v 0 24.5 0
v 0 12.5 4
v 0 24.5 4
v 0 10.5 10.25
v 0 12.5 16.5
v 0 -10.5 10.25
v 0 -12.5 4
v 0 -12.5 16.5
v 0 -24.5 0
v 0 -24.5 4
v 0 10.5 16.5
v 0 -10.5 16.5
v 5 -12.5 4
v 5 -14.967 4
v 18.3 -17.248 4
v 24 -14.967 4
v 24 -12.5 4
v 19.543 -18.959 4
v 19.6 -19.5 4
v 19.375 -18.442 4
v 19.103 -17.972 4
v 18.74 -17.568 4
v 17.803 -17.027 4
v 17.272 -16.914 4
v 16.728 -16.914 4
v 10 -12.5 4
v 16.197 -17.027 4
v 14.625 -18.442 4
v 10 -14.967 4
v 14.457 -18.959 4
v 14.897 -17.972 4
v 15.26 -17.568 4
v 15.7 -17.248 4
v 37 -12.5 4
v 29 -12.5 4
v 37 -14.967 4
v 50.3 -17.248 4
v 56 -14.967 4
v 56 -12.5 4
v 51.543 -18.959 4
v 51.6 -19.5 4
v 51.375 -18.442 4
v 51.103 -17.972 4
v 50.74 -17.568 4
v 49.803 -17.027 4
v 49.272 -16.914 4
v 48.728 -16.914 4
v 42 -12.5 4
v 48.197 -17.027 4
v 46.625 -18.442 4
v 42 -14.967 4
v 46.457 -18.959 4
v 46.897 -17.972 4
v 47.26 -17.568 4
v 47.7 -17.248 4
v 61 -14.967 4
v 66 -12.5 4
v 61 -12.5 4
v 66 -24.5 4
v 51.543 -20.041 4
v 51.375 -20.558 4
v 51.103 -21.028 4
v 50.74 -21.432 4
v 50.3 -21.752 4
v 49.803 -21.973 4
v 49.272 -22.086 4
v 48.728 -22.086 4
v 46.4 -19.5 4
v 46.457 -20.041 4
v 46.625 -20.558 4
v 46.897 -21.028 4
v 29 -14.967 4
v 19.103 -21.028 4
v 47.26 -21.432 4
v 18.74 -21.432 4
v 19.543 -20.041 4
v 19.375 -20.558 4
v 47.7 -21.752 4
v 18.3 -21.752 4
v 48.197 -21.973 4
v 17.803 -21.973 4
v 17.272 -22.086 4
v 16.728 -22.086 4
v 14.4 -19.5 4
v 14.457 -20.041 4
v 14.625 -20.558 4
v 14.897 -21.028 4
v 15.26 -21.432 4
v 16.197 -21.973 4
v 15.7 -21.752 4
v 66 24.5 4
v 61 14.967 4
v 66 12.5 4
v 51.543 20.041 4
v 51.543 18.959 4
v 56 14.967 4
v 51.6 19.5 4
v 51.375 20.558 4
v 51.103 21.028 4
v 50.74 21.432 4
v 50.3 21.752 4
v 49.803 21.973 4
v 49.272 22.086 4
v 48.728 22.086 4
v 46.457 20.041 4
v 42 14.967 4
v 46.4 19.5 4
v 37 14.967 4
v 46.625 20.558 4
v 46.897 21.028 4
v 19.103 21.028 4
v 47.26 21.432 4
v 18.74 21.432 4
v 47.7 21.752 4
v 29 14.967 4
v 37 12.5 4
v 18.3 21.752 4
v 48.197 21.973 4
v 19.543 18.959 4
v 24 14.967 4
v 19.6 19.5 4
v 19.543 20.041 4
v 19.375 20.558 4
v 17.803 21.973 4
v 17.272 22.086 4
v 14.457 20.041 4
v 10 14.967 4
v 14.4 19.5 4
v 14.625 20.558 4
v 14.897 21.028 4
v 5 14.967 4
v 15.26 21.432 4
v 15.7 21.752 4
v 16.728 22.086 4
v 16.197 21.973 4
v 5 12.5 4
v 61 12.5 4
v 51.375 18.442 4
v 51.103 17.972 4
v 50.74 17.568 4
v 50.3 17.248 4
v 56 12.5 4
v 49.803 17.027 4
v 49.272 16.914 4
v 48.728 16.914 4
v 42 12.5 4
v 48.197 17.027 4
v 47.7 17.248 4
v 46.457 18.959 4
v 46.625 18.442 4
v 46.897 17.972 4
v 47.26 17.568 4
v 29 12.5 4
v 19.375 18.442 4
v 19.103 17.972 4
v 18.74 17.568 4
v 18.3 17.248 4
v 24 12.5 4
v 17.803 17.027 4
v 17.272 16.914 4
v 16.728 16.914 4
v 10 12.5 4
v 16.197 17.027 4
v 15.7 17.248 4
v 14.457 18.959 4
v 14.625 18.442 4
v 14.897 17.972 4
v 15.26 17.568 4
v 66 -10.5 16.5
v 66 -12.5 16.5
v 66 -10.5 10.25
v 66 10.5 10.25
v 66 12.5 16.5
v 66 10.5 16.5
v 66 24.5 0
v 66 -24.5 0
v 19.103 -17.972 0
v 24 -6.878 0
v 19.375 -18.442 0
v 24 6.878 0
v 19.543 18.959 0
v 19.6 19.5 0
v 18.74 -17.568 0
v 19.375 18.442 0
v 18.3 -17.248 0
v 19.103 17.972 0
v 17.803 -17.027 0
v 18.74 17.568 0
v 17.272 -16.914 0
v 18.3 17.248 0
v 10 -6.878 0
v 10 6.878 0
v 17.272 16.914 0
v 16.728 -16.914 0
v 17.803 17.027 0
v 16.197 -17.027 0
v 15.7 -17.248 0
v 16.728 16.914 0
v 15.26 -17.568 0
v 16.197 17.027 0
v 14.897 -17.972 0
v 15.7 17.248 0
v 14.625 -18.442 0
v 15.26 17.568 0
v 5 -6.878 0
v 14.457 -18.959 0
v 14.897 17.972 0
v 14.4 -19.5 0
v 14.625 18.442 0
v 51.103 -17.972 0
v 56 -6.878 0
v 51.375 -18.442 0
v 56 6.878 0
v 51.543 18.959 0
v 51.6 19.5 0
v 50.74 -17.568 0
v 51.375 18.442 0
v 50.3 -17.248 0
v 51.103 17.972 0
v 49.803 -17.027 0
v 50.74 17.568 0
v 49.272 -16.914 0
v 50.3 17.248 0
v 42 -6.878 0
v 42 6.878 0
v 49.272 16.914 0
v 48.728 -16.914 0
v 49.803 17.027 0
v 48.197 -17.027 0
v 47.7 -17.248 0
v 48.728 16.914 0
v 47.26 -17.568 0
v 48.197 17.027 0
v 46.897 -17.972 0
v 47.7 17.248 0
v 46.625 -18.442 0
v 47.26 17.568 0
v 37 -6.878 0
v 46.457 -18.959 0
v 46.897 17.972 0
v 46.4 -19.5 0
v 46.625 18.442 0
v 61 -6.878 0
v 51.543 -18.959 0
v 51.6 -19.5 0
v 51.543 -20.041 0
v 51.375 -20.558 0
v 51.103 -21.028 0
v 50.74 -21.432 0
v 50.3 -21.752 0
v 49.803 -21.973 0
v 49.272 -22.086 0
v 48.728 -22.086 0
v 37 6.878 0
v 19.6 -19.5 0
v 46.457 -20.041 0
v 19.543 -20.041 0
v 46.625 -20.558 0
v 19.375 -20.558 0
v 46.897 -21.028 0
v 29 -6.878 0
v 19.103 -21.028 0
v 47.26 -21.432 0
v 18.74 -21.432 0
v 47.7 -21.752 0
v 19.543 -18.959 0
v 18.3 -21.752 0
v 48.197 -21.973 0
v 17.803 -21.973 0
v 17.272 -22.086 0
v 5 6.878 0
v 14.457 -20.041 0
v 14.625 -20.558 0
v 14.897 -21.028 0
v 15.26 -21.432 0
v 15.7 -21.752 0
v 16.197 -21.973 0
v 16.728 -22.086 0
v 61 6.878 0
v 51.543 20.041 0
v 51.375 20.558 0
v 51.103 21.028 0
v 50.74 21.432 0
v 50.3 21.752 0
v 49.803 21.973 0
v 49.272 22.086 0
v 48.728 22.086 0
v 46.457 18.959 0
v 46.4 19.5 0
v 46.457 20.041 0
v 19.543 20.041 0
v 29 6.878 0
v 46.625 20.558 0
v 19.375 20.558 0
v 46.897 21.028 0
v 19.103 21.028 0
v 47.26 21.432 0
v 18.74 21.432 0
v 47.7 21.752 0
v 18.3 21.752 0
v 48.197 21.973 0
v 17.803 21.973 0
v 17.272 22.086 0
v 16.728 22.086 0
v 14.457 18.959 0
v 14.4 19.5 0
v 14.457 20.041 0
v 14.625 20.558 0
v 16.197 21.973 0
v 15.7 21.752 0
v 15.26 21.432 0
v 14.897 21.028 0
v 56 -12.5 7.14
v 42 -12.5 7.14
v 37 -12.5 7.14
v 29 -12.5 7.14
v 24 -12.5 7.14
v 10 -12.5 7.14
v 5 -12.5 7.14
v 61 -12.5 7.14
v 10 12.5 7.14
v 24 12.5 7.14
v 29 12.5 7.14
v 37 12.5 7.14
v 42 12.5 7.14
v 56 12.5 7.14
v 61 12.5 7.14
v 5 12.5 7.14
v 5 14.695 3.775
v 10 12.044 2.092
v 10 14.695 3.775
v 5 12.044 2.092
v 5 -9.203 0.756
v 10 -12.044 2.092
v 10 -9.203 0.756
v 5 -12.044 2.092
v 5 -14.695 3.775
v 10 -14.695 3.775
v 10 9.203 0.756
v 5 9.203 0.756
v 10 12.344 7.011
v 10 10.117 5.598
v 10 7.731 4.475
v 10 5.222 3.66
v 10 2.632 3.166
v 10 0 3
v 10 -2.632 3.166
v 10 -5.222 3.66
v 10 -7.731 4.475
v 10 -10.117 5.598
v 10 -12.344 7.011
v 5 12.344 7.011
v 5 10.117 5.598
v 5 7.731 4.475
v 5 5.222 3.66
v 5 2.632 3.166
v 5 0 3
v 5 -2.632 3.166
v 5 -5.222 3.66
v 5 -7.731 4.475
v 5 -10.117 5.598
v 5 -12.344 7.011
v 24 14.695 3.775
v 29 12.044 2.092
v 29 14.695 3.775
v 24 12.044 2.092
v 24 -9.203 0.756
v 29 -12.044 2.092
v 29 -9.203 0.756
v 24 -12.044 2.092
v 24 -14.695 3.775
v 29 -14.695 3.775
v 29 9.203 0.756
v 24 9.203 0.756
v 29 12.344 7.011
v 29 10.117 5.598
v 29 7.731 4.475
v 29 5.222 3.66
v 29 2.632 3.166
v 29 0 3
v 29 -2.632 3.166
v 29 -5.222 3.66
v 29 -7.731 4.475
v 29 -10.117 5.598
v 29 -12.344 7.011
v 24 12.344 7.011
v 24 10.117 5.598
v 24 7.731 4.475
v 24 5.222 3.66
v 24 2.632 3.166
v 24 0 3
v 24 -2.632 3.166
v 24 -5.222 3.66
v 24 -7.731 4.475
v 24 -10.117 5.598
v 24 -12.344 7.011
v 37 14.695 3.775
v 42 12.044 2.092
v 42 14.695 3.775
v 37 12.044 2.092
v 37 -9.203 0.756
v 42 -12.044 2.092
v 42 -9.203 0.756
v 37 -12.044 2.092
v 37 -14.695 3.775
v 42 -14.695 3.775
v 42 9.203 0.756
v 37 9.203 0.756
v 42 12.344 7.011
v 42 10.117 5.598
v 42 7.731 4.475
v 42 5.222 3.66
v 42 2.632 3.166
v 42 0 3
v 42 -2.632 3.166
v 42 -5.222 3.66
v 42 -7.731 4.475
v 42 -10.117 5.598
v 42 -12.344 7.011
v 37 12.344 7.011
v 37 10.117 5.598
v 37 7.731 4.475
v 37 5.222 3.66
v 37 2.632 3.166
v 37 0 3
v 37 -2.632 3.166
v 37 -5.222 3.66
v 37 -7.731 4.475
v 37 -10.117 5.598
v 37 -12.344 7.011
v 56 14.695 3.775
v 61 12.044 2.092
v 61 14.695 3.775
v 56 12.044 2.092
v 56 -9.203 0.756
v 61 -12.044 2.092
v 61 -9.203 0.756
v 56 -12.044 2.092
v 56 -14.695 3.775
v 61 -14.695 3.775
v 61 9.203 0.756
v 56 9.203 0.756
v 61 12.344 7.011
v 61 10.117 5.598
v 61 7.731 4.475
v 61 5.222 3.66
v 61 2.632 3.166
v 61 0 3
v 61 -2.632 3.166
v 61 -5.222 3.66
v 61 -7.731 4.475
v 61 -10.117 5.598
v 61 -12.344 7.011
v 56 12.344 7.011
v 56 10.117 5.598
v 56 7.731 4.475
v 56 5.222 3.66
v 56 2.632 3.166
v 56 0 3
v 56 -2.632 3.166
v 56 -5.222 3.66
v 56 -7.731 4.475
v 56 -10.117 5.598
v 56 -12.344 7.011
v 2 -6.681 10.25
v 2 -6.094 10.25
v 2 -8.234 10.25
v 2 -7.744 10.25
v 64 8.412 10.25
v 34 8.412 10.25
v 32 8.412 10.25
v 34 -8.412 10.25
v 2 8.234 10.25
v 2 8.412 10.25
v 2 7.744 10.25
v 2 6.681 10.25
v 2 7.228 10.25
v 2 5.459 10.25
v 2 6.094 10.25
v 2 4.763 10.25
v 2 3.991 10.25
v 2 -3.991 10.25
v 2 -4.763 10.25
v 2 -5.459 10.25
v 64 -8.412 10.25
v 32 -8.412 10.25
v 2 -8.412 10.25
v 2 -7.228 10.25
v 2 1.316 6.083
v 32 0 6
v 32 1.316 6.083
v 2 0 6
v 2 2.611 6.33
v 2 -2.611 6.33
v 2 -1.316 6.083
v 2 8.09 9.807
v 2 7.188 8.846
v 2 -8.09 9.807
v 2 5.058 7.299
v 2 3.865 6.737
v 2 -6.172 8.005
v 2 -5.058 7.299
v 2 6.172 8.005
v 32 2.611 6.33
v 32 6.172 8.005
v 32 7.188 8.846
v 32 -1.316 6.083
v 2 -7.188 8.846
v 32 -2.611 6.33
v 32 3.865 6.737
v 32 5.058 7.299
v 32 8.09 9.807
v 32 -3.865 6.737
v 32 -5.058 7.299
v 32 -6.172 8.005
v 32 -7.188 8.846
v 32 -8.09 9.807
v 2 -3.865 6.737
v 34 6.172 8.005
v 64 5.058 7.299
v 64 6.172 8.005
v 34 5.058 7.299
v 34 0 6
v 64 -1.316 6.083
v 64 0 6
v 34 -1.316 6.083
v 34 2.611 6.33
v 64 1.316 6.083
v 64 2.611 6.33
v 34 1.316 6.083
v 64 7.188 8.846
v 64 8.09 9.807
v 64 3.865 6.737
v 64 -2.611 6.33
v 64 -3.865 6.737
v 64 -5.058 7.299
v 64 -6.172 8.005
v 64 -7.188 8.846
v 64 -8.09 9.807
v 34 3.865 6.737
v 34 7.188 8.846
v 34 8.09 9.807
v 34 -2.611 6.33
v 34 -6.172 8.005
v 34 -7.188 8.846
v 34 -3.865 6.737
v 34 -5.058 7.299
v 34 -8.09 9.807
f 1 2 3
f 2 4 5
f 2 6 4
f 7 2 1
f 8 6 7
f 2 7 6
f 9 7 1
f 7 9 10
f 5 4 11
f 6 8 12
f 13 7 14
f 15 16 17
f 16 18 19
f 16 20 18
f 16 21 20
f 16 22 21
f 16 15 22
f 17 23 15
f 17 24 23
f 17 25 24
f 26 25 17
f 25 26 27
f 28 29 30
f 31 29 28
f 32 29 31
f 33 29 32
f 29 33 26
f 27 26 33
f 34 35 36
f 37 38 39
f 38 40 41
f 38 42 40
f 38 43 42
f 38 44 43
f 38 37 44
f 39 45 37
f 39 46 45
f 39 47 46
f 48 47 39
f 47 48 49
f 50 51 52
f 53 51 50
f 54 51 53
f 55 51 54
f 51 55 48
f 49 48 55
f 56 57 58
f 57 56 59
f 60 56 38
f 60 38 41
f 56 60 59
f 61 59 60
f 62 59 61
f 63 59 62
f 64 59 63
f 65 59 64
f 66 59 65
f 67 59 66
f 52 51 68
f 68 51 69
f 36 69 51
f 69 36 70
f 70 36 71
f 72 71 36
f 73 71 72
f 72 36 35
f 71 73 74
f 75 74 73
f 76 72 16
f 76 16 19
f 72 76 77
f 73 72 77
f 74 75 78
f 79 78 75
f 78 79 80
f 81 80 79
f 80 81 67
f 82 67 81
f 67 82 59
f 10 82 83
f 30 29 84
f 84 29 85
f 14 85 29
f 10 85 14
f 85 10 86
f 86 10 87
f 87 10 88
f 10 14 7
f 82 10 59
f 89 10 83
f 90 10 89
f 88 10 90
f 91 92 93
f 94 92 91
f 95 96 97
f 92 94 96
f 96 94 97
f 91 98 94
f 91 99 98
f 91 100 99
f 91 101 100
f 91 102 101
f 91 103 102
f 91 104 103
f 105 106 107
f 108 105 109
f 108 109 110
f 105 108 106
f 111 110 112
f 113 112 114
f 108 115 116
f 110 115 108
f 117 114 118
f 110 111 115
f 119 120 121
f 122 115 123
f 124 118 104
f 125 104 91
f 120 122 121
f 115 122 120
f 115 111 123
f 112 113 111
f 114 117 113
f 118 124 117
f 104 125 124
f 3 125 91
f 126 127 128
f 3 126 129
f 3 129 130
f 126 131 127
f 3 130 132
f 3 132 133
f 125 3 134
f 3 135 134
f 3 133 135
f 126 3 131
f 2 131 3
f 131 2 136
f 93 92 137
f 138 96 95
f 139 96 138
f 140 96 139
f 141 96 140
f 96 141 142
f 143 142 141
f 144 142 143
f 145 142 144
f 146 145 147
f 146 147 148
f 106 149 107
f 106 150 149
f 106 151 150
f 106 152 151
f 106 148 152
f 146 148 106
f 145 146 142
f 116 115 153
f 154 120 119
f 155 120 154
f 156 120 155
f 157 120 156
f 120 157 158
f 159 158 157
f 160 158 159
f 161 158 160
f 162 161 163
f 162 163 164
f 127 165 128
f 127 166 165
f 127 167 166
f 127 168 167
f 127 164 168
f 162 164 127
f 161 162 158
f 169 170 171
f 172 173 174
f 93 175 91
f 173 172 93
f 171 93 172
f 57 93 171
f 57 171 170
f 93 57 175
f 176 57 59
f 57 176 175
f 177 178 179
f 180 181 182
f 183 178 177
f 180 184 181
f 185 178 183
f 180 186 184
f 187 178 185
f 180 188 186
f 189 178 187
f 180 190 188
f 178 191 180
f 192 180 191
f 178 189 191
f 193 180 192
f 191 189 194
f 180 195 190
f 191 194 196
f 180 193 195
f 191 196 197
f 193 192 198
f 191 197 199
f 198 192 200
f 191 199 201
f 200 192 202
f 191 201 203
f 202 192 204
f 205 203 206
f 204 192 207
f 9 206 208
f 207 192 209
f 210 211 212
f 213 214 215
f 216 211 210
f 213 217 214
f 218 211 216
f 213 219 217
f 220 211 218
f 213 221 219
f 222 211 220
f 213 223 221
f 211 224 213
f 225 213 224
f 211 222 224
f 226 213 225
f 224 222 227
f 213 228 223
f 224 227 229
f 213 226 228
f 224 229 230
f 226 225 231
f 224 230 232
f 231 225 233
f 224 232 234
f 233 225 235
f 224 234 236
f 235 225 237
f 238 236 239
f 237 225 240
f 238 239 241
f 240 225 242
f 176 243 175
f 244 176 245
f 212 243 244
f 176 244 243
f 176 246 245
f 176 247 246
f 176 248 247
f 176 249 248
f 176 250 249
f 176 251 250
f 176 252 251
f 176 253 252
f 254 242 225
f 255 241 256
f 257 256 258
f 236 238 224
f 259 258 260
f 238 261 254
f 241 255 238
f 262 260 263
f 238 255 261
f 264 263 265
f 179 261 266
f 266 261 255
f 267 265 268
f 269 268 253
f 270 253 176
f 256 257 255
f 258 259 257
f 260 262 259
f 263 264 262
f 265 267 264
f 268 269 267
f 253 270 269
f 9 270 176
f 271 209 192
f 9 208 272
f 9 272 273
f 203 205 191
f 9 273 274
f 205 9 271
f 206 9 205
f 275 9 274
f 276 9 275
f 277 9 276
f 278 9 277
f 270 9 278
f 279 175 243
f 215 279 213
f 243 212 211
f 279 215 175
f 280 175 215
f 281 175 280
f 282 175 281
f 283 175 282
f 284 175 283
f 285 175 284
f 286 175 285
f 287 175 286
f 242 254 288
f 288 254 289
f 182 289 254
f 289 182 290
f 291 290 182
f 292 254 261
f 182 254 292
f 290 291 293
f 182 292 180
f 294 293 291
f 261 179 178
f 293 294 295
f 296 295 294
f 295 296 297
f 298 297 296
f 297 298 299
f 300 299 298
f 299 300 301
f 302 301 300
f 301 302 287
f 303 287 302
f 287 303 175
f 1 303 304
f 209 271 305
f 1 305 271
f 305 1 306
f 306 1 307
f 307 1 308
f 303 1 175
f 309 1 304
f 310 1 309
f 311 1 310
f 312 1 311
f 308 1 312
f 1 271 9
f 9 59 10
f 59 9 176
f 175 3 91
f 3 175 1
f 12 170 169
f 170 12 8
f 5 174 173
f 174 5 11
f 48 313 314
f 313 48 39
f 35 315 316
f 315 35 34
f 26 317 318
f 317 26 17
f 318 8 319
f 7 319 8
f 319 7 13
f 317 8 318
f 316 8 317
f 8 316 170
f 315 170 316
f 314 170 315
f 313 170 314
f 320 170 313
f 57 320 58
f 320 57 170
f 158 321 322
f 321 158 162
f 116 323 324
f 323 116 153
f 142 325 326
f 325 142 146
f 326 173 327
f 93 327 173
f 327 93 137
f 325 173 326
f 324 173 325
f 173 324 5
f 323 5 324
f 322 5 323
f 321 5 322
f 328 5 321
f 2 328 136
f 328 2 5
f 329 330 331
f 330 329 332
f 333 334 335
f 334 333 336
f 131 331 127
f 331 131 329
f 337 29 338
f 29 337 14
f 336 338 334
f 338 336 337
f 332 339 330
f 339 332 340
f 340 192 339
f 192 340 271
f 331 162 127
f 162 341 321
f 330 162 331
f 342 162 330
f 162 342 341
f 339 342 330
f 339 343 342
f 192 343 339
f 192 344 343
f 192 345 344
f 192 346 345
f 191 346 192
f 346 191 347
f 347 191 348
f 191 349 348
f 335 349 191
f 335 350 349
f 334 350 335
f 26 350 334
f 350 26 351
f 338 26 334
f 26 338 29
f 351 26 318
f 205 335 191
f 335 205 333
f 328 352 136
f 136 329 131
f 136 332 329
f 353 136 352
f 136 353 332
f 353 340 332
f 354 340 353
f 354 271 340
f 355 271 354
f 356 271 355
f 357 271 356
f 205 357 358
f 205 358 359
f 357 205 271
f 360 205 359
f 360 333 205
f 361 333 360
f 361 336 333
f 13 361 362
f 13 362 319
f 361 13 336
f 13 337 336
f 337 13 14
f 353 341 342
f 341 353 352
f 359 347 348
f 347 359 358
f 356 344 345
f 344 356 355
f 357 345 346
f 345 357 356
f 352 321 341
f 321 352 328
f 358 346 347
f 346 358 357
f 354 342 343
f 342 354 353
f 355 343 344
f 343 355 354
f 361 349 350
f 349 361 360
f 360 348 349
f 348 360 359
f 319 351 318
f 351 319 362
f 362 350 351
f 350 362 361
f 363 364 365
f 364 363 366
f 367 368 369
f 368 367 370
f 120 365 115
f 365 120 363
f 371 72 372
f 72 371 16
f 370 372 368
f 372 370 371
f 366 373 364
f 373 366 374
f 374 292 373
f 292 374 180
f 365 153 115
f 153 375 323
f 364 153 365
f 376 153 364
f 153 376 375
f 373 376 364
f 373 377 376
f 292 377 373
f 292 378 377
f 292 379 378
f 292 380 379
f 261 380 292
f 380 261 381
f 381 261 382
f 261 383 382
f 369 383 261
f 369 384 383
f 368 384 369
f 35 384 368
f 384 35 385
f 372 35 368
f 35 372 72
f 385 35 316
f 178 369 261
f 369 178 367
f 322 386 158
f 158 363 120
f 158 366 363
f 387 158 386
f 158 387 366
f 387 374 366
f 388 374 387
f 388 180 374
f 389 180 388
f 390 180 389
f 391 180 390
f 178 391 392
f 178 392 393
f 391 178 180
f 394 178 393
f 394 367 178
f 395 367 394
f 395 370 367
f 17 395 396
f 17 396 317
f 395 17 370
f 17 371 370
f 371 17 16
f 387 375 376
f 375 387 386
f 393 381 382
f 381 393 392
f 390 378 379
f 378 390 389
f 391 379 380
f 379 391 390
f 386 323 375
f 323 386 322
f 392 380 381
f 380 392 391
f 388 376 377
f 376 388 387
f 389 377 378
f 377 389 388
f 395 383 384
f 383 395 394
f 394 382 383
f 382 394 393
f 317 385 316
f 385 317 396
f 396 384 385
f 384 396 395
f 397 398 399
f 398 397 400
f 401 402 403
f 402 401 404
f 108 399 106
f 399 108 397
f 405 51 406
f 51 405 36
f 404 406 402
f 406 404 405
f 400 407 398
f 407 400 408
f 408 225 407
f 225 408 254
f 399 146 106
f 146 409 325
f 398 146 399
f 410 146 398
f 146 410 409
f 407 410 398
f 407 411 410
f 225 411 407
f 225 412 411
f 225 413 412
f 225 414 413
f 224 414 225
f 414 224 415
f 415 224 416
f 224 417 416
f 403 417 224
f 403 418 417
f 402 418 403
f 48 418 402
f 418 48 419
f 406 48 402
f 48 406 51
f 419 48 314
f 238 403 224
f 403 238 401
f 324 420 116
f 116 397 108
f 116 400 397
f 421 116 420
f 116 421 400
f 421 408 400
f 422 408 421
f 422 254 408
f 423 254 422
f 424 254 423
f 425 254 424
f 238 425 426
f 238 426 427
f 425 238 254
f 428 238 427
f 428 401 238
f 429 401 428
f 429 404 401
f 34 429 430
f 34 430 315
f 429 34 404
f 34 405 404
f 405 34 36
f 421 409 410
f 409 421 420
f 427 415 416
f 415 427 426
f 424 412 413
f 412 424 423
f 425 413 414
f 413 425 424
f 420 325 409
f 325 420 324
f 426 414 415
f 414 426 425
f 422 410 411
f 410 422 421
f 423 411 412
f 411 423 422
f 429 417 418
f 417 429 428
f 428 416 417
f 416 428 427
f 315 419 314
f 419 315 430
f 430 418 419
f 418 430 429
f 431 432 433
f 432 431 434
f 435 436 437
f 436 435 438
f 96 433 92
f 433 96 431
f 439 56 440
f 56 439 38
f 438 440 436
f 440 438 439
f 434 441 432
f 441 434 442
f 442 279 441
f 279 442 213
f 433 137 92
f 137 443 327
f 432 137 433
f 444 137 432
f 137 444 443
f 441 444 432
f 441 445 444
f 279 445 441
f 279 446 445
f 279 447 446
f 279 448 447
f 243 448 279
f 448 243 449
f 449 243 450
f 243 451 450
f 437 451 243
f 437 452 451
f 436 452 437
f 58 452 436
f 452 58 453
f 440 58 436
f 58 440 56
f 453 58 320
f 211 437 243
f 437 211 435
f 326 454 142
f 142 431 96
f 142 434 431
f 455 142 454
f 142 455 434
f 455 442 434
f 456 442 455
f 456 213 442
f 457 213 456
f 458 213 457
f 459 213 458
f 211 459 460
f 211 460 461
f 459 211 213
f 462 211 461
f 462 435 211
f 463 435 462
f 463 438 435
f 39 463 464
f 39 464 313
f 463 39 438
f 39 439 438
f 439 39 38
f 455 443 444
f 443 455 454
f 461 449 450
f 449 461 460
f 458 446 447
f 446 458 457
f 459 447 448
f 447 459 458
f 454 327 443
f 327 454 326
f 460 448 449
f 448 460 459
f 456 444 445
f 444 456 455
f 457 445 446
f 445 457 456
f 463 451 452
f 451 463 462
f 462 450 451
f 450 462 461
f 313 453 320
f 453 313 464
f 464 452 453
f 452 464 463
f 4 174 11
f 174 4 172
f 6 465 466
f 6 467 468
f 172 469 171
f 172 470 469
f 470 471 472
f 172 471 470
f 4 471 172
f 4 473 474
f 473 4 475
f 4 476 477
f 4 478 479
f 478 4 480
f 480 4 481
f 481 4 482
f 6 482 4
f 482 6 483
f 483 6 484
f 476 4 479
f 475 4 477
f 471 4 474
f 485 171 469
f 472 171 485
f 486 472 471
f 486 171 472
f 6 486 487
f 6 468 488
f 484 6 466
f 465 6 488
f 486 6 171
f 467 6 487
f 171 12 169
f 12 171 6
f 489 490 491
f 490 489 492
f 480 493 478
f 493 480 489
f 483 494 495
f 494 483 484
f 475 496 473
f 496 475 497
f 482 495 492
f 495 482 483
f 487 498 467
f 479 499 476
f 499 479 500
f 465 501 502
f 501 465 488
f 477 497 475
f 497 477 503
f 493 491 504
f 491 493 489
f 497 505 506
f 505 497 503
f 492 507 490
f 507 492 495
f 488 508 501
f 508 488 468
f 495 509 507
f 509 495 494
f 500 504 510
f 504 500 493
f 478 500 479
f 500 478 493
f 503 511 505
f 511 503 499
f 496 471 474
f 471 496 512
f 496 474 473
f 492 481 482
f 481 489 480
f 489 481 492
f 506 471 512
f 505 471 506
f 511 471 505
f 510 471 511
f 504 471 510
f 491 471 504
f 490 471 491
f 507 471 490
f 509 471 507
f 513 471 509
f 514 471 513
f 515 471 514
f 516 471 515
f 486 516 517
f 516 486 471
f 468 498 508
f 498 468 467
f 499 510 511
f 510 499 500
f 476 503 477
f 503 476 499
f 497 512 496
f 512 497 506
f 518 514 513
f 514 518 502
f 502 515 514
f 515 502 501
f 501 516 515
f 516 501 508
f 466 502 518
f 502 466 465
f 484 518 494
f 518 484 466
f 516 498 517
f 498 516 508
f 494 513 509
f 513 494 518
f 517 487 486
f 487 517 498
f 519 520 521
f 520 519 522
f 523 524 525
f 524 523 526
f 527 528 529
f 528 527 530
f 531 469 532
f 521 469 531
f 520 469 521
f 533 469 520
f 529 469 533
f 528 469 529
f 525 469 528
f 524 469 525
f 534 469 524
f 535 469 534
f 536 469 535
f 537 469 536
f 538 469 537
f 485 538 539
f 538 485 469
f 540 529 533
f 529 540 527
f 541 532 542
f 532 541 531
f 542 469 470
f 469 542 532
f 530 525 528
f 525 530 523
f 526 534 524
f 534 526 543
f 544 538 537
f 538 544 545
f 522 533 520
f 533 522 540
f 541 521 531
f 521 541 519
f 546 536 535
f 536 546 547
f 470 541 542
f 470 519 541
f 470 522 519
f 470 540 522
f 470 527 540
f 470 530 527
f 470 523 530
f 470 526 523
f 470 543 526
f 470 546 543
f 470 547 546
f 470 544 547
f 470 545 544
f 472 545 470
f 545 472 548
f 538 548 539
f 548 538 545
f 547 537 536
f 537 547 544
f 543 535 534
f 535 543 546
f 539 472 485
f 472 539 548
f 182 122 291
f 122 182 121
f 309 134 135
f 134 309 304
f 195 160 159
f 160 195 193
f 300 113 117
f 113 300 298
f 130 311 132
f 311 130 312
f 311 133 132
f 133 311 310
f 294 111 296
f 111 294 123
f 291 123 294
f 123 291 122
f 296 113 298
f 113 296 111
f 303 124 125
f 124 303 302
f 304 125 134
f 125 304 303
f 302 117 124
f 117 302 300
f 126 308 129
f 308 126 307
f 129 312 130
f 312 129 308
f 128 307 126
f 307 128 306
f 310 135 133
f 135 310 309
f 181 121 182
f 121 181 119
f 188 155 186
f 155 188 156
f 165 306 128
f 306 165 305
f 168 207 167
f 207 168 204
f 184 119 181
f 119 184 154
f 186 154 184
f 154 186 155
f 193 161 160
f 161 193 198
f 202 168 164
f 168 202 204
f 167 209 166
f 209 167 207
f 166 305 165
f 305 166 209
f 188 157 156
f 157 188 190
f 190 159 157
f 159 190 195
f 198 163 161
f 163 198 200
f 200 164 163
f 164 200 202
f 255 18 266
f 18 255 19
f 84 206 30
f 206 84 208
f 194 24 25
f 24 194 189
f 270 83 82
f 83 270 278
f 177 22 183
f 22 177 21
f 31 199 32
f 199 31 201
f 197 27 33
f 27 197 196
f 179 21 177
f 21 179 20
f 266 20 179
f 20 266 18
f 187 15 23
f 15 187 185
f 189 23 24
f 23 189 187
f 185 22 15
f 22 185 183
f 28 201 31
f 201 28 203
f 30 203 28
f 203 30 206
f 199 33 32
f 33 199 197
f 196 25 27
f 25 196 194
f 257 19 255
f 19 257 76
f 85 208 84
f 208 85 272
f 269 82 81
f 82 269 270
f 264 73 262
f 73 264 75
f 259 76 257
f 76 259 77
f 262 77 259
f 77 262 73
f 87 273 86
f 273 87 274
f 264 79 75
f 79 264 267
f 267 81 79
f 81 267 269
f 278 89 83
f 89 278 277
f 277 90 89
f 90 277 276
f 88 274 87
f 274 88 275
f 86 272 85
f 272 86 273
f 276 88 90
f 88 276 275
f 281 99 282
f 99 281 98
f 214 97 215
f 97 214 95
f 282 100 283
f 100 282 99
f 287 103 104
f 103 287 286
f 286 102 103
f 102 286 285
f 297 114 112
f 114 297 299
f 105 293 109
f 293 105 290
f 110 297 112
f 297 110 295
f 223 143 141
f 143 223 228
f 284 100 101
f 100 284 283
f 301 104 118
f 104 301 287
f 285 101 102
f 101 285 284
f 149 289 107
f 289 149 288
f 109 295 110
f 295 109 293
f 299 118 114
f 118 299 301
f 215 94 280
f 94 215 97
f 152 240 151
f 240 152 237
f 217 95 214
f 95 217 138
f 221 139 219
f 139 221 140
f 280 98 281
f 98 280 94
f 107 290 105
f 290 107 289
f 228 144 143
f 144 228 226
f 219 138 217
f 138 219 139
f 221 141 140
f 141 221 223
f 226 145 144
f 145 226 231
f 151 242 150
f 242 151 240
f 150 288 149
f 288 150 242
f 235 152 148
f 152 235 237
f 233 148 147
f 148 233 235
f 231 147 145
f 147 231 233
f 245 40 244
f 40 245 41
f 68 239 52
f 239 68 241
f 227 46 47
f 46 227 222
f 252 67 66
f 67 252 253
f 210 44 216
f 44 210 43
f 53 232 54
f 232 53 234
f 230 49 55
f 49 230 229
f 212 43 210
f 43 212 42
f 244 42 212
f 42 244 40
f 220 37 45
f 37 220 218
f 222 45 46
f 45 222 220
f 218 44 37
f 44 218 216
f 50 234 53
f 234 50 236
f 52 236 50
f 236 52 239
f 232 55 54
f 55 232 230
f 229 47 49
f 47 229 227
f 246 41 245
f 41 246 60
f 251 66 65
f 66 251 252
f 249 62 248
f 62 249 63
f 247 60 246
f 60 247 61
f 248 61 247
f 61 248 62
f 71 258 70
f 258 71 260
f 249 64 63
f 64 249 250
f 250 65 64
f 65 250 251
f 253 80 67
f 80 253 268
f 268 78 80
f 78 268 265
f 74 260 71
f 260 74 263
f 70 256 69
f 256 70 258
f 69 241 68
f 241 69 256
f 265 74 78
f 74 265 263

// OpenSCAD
    height = 49;
    width = 66;
    thick=4;

module carriageBase(){
    

    translate([0,-height/2,0])cube([width,height,thick]);
    translate([(width - 66)/2, -25/2,0])cube([66,25,21/2+thick+2]);
    
}

module bindCut(distance = 0){
    diameter = 21*2;
    translate([distance,0,diameter/2+thick-1])rotate([0,90])difference(){
    cylinder(r=diameter/2+thick,h=5,$fn=50);
    cylinder(r=diameter/2,h=5,$fn=50);  
}
}

module carriageHoles(){
  //rod cut
  translate([0,-21/2,(thick+21/2+2)-12.5/2])cube([width,21,20]);
  //lm12uu cuts
  
  translate([(width - 66)/2+2,0,21/2+thick+2])rotate([0,90])cylinder(r=21/2,h=30,$fn=50);
  translate([(width - 66)/2+ 30 +4,0,21/2+thick+2])rotate([0,90])cylinder(r=21/2,h=30,$fn=50);  
  //bind cuts
    bind_base = (width - 66)/2+2;
  bindCut(bind_base + 3);
  bindCut(bind_base + 30-3-5);  
  bindCut(bind_base + 30 + 3 + 2); 
  bindCut(bind_base + 60 -3 -5 + 2);  
  //mount holes
  translate([2+15,49/2-5])cylinder(r=5.2/2,h=20,$fn=30);
  translate([2+15,-(49/2-5)])cylinder(r=5.2/2,h=20,$fn=30); 
  translate([4+30+15,49/2-5])cylinder(r=5.2/2,h=20,$fn=30);
  translate([4+30+15,-(49/2-5)])cylinder(r=5.2/2,h=20,$fn=30); 
    
}

difference(){
carriageBase();
   carriageHoles();
}
